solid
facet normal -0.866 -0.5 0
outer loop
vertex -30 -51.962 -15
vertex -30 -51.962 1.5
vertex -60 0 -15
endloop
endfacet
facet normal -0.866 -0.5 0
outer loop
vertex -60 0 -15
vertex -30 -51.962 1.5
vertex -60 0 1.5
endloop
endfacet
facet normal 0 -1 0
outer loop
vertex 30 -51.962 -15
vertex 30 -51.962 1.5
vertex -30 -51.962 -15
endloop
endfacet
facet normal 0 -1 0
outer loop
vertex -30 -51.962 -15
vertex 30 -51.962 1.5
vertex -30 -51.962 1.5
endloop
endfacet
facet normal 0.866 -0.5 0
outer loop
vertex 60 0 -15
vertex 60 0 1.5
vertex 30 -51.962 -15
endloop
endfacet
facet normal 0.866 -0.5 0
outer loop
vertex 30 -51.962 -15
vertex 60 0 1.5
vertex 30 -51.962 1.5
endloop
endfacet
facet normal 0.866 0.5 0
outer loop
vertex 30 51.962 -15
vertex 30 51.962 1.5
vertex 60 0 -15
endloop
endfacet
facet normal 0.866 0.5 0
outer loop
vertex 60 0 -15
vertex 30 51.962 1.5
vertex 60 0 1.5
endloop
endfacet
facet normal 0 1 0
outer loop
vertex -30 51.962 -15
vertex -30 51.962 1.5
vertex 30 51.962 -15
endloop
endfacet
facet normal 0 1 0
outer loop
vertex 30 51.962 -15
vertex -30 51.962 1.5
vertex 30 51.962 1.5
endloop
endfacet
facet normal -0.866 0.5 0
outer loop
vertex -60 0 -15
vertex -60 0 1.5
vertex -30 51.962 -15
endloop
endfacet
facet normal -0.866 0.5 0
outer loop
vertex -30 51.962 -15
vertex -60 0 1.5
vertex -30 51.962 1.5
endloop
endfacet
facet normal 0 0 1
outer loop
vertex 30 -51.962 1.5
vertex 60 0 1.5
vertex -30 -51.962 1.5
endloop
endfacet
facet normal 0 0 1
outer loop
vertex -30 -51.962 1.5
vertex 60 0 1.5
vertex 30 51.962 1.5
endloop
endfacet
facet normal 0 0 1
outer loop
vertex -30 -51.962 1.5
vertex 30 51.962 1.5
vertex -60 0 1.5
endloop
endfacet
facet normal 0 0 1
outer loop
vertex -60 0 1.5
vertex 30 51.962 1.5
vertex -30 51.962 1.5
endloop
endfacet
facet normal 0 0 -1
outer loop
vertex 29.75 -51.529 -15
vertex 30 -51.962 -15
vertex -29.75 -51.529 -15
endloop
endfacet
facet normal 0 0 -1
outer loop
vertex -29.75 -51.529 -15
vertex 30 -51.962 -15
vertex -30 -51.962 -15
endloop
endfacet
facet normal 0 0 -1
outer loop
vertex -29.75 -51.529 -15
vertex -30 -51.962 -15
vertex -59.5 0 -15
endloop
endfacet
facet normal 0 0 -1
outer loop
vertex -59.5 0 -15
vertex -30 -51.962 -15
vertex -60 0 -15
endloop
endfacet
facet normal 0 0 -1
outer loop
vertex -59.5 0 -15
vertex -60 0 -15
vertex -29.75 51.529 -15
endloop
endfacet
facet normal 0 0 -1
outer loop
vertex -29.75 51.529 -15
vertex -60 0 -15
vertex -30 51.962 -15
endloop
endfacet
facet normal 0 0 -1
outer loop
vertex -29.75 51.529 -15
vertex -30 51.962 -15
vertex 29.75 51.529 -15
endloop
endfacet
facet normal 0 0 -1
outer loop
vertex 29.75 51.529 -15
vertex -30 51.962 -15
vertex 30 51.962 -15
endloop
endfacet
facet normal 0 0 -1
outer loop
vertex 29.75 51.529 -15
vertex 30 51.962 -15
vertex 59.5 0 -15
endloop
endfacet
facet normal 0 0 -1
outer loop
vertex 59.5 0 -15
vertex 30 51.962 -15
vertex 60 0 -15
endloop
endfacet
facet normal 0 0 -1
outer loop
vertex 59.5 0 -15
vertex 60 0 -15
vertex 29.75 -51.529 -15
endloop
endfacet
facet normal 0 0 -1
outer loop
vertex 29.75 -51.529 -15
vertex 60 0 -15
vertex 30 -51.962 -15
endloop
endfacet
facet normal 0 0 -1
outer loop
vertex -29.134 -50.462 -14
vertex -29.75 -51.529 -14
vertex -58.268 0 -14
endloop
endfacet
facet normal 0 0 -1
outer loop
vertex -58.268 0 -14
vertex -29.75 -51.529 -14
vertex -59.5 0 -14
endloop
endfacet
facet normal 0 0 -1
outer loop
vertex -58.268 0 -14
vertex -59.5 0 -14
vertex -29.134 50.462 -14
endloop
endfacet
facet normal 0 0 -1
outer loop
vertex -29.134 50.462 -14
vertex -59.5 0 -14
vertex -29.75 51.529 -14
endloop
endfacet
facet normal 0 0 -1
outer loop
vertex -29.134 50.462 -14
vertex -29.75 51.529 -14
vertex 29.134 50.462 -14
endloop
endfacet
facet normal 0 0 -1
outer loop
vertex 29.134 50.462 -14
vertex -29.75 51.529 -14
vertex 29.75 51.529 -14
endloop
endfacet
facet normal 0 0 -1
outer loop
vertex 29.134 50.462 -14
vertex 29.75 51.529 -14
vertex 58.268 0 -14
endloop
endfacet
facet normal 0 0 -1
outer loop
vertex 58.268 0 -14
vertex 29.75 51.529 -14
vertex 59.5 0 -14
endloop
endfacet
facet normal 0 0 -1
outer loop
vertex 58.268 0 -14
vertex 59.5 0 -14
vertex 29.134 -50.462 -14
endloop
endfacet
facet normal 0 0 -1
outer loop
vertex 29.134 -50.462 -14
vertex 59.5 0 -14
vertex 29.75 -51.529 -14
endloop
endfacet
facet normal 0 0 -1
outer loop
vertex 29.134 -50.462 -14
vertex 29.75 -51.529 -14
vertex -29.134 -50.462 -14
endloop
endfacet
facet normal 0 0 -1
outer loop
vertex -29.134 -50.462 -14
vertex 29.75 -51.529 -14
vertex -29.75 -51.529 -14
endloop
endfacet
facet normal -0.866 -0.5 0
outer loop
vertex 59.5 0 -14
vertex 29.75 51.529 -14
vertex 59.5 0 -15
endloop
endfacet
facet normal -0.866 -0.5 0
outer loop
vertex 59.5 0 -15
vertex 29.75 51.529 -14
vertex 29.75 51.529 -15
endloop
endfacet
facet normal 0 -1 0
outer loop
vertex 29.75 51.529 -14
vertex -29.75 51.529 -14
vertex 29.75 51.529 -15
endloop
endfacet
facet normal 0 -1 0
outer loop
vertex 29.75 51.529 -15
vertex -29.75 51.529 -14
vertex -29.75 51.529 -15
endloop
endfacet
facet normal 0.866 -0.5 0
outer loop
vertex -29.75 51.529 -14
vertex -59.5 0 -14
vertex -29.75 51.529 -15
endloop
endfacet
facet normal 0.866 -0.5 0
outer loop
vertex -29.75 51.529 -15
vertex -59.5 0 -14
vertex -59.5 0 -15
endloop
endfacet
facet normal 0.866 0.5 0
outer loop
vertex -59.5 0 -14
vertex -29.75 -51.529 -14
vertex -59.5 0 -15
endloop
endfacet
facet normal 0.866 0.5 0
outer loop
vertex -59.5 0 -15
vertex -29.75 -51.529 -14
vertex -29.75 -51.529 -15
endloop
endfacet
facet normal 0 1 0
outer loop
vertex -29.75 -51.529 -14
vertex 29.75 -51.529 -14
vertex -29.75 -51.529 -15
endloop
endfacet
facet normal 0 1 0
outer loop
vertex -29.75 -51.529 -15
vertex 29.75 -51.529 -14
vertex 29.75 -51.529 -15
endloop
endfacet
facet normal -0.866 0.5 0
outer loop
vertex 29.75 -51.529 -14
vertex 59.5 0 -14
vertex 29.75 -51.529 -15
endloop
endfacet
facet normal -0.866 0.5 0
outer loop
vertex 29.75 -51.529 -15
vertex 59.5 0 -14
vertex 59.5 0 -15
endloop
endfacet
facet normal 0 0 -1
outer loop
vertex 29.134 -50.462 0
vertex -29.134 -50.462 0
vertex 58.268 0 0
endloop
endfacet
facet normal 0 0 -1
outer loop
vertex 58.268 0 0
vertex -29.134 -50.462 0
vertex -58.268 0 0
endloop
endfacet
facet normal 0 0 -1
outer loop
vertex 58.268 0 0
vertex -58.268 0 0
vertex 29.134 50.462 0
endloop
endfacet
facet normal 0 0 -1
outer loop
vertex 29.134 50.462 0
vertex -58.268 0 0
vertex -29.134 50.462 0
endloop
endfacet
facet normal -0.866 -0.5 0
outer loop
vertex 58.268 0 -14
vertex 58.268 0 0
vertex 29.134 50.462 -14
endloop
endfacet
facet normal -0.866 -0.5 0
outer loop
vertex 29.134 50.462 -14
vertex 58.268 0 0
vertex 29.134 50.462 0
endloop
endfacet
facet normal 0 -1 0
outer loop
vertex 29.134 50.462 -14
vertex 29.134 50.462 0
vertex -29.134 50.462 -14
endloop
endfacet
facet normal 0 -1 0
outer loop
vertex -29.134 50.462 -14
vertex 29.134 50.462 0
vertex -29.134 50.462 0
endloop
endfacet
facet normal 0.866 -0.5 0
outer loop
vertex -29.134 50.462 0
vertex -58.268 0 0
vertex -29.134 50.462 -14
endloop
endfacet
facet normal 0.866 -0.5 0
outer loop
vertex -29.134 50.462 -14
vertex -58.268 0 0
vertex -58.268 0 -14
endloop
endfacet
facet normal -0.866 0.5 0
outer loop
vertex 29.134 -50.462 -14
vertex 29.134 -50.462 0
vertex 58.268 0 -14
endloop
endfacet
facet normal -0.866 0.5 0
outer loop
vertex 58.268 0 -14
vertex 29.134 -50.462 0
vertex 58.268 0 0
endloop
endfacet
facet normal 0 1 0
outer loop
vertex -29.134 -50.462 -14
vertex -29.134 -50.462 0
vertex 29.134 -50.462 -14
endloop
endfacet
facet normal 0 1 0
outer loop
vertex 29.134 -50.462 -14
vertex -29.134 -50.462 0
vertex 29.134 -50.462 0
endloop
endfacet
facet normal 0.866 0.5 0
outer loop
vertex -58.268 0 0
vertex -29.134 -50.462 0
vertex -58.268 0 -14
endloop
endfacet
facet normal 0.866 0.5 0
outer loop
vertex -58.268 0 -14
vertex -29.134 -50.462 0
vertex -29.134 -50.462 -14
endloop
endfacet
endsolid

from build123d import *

# Parameters (mm, degrees)
BOSS_EXTRU_1_DEPTH      = 1.5
ESQUISSE3_W             = 15
ESQUISSE3_H             = 60
BOSS_EXTRU_2_DEPTH      = 1.5
ESQUISSE5_W             = 60
ESQUISSE5_H             = 15
BOSS_EXTRU_3_DEPTH      = 1.5
ESQUISSE6_W             = 15
ESQUISSE6_H             = 60
BOSS_EXTRU_4_DEPTH      = 1.5
ENL_V_MAT_EXTRU_1_DEPTH = 1


with BuildPart() as part:
    # Esquisse1 → Boss.-Extru.1 (new body)
    with BuildSketch(Plane.XY):
        Polygon((-30, -51.961524227), (30, -51.961524227), (60, 0), (30, 51.961524227), (-30, 51.961524227), (-60, 0), align=None)
    extrude(amount=BOSS_EXTRU_1_DEPTH)

    # Esquisse3 → Boss.-Extru.2 (add)
    with BuildSketch(Plane(origin=(-45, -25.980762114, 0), x_dir=(0, 0, 1), z_dir=(-0.8660254037844386, -0.5000000000000001, 0))):
        with Locations((-7.5, 0)):
            Rectangle(ESQUISSE3_W, ESQUISSE3_H)
    boss_extru_2 = extrude(amount=-BOSS_EXTRU_2_DEPTH)

    # Esquisse5 → Boss.-Extru.3 (add)
    with BuildSketch(Plane(origin=(0, -51.961524227, 0), x_dir=(-1, 0, 0), z_dir=(0, -1, 0))):
        with Locations((0, 7.5)):
            Rectangle(ESQUISSE5_W, ESQUISSE5_H)
    boss_extru_3 = extrude(amount=-BOSS_EXTRU_3_DEPTH)

    # Esquisse6 → Boss.-Extru.4 (add)
    with BuildSketch(Plane(origin=(45, -25.980762114, 0), x_dir=(0, 0, -1), z_dir=(0.8660254037844389, -0.4999999999999996, 0))):
        with Locations((7.5, 0)):
            Rectangle(ESQUISSE6_W, ESQUISSE6_H)
    boss_extru_4 = extrude(amount=-BOSS_EXTRU_4_DEPTH)

    # Symétrie1: Boss.-Extru.2, Boss.-Extru.3, Boss.-Extru.4 across plane
    add(boss_extru_2.mirror(Plane.ZX))
    add(boss_extru_3.mirror(Plane.ZX))
    add(boss_extru_4.mirror(Plane.ZX))

    # Esquisse7 → Enlèv. mat.-Extru.1 (cut)
    with BuildSketch(Plane(origin=(0, 0, -15), x_dir=(-1, 0, 0), z_dir=(0, 0, -1))):
        Polygon((-59.5, 0), (-29.75, -51.528511525), (29.75, -51.528511525), (59.5, 0), (29.75, 51.528511525), (-29.75, 51.528511525), align=None)
    extrude(amount=-ENL_V_MAT_EXTRU_1_DEPTH, mode=Mode.SUBTRACT)


solid = part.part
